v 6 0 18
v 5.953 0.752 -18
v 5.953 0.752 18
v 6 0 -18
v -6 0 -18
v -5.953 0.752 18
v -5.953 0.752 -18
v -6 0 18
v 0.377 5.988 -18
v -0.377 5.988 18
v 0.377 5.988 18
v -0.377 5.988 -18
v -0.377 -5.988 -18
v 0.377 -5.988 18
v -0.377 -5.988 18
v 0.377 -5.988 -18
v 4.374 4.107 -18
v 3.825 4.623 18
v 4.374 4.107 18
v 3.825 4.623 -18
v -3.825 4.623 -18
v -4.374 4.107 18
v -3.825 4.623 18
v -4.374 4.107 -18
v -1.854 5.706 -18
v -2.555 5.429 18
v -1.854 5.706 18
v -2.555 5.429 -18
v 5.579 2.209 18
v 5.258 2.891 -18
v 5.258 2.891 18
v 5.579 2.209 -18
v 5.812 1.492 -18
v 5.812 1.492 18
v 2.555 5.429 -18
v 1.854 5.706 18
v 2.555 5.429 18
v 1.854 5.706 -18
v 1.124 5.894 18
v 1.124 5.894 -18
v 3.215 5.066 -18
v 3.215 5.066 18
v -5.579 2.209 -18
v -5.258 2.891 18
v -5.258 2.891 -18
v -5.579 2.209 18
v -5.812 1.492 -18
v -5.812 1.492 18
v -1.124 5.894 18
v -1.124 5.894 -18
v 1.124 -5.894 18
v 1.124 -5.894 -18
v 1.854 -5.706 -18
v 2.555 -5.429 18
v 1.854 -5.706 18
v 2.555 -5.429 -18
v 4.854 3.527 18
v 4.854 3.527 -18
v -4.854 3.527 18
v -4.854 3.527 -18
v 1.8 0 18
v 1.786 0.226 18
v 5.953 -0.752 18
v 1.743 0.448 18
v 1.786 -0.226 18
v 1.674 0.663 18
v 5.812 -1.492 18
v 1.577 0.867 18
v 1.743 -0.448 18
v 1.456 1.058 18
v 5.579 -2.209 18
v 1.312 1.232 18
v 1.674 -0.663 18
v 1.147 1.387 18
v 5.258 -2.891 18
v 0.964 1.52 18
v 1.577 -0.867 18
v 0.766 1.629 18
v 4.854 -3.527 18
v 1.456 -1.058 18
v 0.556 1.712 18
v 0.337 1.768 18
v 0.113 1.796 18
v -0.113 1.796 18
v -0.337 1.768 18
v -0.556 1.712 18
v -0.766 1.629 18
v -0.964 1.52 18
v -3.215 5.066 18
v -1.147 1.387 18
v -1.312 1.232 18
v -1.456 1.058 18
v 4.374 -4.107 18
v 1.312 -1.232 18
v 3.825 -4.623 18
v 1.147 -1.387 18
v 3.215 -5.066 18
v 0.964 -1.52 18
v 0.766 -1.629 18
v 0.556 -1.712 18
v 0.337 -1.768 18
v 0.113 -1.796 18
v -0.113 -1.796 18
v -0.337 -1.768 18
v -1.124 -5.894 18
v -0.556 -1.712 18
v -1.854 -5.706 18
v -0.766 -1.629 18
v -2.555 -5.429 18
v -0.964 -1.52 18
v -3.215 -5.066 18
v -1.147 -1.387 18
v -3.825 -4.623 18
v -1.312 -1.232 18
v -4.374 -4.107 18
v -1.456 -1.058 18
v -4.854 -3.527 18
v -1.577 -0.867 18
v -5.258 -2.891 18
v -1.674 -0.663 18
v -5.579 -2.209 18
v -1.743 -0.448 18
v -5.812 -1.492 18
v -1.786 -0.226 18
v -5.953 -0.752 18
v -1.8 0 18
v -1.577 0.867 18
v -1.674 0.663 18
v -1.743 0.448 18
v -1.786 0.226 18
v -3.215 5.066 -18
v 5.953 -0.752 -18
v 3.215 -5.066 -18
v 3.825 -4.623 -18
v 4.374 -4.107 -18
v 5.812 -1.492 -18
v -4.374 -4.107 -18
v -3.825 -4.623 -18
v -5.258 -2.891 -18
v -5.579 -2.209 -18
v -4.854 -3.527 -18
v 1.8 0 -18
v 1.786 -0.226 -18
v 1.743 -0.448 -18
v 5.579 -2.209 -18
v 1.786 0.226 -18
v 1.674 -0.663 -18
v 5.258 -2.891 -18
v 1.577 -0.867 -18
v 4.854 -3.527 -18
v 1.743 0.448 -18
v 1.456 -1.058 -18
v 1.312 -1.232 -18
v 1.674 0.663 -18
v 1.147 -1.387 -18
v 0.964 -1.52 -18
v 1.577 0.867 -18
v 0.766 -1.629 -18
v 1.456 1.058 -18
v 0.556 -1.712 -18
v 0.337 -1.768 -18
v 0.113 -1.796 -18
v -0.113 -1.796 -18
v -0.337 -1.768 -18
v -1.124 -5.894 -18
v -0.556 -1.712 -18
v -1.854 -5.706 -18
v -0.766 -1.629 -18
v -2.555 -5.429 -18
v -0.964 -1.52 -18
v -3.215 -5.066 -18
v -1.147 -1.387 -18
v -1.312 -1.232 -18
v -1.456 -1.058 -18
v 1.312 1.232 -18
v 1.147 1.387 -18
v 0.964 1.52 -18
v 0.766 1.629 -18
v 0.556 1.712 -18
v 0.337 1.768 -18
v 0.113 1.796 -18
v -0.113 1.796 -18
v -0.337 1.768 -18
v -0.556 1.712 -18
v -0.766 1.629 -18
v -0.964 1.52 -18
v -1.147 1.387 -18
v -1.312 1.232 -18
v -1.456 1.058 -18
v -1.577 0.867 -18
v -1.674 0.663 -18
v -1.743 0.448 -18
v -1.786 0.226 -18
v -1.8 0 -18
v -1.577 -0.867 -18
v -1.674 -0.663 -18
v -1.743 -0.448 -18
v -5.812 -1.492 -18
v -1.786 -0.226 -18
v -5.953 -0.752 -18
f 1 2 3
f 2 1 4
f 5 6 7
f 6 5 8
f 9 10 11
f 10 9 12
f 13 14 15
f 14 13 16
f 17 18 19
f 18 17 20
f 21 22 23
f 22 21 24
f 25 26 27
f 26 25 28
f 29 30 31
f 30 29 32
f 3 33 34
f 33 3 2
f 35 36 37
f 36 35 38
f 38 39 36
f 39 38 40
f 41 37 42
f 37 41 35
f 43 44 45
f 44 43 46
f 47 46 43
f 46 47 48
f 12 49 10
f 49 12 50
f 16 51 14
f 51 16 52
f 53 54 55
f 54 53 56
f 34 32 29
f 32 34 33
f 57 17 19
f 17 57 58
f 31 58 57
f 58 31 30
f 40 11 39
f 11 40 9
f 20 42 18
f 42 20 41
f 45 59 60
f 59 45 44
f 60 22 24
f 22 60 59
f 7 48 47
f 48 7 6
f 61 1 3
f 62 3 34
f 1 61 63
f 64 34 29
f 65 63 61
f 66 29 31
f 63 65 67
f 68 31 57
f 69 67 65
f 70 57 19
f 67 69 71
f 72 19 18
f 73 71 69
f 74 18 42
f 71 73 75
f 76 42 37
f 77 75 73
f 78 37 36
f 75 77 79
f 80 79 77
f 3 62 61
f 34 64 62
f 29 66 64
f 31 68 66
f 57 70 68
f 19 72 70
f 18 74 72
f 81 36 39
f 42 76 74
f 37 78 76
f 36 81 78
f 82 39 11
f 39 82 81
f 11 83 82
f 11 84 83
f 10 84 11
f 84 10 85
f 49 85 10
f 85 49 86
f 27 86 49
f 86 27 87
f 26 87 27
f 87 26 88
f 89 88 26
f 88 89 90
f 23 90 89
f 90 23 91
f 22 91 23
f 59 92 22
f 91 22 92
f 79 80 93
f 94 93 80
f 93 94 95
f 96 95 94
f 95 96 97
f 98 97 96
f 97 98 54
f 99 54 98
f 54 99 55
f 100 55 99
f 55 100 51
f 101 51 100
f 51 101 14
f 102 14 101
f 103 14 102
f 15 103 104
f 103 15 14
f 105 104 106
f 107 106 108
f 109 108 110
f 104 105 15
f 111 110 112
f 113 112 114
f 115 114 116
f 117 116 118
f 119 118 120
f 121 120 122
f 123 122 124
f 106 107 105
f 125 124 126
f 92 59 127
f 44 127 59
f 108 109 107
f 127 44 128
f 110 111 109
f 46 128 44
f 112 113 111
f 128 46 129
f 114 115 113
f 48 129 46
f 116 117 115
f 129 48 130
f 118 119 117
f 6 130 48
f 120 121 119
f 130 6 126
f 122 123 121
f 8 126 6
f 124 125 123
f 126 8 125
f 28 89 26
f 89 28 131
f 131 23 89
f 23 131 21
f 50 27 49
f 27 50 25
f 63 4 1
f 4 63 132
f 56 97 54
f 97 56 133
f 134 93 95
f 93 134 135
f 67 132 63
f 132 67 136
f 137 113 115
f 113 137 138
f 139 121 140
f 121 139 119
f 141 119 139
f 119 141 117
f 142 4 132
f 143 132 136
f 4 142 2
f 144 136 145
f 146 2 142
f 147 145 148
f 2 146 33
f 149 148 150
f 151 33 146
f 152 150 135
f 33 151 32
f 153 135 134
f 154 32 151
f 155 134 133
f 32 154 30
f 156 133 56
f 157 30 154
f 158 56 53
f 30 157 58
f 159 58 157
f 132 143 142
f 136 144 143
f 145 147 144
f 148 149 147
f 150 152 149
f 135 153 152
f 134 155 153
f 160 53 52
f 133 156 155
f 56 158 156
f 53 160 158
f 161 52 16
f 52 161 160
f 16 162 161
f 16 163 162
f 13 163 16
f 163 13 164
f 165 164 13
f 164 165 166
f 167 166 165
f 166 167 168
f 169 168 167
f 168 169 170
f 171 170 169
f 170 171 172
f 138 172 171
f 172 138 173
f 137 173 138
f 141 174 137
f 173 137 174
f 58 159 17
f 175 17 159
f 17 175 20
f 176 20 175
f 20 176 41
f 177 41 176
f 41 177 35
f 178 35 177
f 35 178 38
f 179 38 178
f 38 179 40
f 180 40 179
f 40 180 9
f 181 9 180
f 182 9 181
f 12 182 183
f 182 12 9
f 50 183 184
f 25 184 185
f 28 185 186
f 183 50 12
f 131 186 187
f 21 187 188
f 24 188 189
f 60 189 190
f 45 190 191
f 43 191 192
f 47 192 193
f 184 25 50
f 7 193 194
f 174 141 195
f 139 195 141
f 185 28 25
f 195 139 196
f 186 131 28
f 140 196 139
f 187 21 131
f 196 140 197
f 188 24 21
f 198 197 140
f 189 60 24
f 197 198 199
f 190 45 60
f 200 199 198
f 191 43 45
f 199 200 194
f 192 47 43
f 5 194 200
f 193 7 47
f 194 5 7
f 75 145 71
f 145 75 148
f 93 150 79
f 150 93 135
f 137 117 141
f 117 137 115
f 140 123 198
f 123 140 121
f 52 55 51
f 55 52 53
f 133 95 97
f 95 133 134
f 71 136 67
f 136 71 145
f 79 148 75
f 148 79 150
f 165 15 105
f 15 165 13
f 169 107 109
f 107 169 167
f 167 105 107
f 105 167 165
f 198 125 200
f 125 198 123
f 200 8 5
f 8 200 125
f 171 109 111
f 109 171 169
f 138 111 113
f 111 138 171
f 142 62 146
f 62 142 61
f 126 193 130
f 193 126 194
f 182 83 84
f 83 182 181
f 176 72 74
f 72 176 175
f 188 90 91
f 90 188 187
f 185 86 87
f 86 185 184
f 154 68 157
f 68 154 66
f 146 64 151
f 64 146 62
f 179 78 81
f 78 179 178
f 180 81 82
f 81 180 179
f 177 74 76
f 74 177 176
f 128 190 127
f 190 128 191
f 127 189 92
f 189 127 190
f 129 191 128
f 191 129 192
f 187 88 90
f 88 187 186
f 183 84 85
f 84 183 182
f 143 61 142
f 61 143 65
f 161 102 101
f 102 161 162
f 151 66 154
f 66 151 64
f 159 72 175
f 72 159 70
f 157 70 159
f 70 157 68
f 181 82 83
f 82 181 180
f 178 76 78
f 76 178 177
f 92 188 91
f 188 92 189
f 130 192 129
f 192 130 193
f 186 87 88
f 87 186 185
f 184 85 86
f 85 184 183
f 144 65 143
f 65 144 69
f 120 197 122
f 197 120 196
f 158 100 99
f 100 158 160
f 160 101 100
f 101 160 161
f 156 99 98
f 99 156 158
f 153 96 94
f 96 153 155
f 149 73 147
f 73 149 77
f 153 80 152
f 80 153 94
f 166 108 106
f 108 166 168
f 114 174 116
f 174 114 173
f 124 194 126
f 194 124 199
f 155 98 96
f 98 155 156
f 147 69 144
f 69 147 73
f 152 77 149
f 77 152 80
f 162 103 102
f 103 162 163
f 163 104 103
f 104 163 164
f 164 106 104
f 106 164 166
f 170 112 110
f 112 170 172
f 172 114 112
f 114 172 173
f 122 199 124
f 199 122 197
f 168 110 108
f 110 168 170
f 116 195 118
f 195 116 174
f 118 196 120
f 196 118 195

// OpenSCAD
$fn = 50;


difference() {
	union() {
		translate(v = [0, 0, -18.0000000000]) {
			cylinder(h = 36, r = 6.0000000000);
		}
	}
	union() {
		translate(v = [0, 0, -100.0000000000]) {
			cylinder(h = 200, r = 1.8000000000);
		}
	}
}
